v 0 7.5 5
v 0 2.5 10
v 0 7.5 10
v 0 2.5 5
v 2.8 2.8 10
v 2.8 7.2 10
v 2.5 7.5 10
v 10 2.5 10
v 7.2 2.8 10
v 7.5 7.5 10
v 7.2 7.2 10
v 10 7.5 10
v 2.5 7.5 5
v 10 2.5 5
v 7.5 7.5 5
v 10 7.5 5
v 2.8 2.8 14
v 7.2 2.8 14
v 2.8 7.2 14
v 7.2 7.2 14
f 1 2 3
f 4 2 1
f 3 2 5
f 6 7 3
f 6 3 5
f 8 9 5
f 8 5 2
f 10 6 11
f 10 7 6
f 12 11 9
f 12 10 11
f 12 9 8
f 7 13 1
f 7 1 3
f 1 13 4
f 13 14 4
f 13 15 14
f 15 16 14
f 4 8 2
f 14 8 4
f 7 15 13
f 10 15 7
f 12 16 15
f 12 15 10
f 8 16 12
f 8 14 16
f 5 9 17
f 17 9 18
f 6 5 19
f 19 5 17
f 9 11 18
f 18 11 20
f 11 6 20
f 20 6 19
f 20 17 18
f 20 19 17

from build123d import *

# Parameters (mm, degrees)
BOX_W              = 10
BOX_H              = 10
BOX_DEPTH          = 10
SKETCH_W           = 4.4
SKETCH_H           = 4.4
PAD_DEPTH          = 4
PAD_FACE4_W        = 10
PAD_FACE4_H        = 10
POCKET_DEPTH       = 2.5
POCKET_FACE5_W     = 10
POCKET_FACE5_H     = 10
POCKET001_DEPTH    = 2.5
SKETCH001_W        = 5
SKETCH001_H        = 10
PAD001_DEPTH       = 10
SKETCH002_W        = 4.4
SKETCH002_H        = 4.4
PAD002_DEPTH       = 4
PAD002_FACE22_W    = 4.4
PAD002_FACE22_H    = 4.4
POCKET002_DEPTH    = 5
POCKET002_FACE16_W = 5
POCKET002_FACE16_H = 10
POCKET003_DEPTH    = 7.5
POCKET003_FACE15_W = 5
POCKET003_FACE15_H = 10
POCKET004_DEPTH    = 2.5
PAD003_DEPTH       = 5
POCKET005_DEPTH    = 10


with BuildPart() as part:
    # Box → Box (new body)
    with BuildSketch(Plane.XY):
        with Locations((5, 5)):
            Rectangle(BOX_W, BOX_H)
    extrude(amount=BOX_DEPTH)

    # Sketch (on Face6 of BaseFeature) → Pad (new body)
    with BuildSketch(Plane.XY.offset(10)):
        with Locations((5, 5)):
            Rectangle(SKETCH_W, SKETCH_H)
    extrude(amount=PAD_DEPTH)

    # Pad Face4 → Pocket (cut)
    with BuildSketch(Plane(origin=(5, 10, 5), x_dir=(1, 0, 0), z_dir=(0, 1, 0))):
        Rectangle(PAD_FACE4_W, PAD_FACE4_H)
    extrude(amount=-POCKET_DEPTH, mode=Mode.SUBTRACT)

    # Pocket Face5 → Pocket001 (cut)
    with BuildSketch(Plane(origin=(5, 0, 5), x_dir=(-1, 0, 0), z_dir=(0, -1, 0))):
        Rectangle(POCKET_FACE5_W, POCKET_FACE5_H)
    extrude(amount=-POCKET001_DEPTH, mode=Mode.SUBTRACT)

    # Sketch001 (on Face3 of Pocket001) → Pad001 (join)
    with BuildSketch(Plane(origin=(0, 7.5, 0), x_dir=(-1, 0, 0), z_dir=(0, 1, 0))):
        with Locations((-5, 5)):
            Rectangle(SKETCH001_W, SKETCH001_H)
    extrude(amount=PAD001_DEPTH)

    # Sketch002 (on Face6 of Pad001) → Pad002 (join)
    with BuildSketch(Plane.XY.offset(10)):
        with Locations((5, 12.5)):
            Rectangle(SKETCH002_W, SKETCH002_H)
    extrude(amount=PAD002_DEPTH)

    # Pad002 Face22 → Pocket002 (cut)
    with BuildSketch(Plane(origin=(5, 12.5, 14), x_dir=(0, 1, 0), z_dir=(0, 0, 1))):
        Rectangle(PAD002_FACE22_W, PAD002_FACE22_H)
    extrude(amount=-POCKET002_DEPTH, mode=Mode.SUBTRACT)

    # Pocket002 Face16 → Pocket003 (cut)
    with BuildSketch(Plane(origin=(5, 17.5, 5), x_dir=(1, 0, 0), z_dir=(0, 1, 0))):
        Rectangle(POCKET002_FACE16_W, POCKET002_FACE16_H)
    extrude(amount=-POCKET003_DEPTH, mode=Mode.SUBTRACT)

    # Pocket003 Face15 → Pocket004 (cut)
    with BuildSketch(Plane(origin=(5, 10, 5), x_dir=(1, 0, 0), z_dir=(0, 1, 0))):
        Rectangle(POCKET003_FACE15_W, POCKET003_FACE15_H)
    extrude(amount=-POCKET004_DEPTH, mode=Mode.SUBTRACT)

    # Pocket004 Face4 → Pad003 (add)
    with BuildSketch(Plane(origin=(5, 5, 0), x_dir=(0, -1, 0), z_dir=(0, 0, -1))):
        Polygon((2.5, 5), (-2.5, 5), (-2.5, 2.5), (-2.5, -2.5), (-2.5, -5), (2.5, -5), align=None)
    extrude(amount=PAD003_DEPTH)

    # Pad003 Face15 → Pocket005 (cut)
    with BuildSketch(Plane(origin=(5, 5, -5), x_dir=(0, -1, 0), z_dir=(0, 0, -1))):
        Polygon((2.5, 5), (-2.5, 5), (-2.5, 2.5), (-2.5, -2.5), (-2.5, -5), (2.5, -5), align=None)
    extrude(amount=-POCKET005_DEPTH, mode=Mode.SUBTRACT)


solid = part.part
